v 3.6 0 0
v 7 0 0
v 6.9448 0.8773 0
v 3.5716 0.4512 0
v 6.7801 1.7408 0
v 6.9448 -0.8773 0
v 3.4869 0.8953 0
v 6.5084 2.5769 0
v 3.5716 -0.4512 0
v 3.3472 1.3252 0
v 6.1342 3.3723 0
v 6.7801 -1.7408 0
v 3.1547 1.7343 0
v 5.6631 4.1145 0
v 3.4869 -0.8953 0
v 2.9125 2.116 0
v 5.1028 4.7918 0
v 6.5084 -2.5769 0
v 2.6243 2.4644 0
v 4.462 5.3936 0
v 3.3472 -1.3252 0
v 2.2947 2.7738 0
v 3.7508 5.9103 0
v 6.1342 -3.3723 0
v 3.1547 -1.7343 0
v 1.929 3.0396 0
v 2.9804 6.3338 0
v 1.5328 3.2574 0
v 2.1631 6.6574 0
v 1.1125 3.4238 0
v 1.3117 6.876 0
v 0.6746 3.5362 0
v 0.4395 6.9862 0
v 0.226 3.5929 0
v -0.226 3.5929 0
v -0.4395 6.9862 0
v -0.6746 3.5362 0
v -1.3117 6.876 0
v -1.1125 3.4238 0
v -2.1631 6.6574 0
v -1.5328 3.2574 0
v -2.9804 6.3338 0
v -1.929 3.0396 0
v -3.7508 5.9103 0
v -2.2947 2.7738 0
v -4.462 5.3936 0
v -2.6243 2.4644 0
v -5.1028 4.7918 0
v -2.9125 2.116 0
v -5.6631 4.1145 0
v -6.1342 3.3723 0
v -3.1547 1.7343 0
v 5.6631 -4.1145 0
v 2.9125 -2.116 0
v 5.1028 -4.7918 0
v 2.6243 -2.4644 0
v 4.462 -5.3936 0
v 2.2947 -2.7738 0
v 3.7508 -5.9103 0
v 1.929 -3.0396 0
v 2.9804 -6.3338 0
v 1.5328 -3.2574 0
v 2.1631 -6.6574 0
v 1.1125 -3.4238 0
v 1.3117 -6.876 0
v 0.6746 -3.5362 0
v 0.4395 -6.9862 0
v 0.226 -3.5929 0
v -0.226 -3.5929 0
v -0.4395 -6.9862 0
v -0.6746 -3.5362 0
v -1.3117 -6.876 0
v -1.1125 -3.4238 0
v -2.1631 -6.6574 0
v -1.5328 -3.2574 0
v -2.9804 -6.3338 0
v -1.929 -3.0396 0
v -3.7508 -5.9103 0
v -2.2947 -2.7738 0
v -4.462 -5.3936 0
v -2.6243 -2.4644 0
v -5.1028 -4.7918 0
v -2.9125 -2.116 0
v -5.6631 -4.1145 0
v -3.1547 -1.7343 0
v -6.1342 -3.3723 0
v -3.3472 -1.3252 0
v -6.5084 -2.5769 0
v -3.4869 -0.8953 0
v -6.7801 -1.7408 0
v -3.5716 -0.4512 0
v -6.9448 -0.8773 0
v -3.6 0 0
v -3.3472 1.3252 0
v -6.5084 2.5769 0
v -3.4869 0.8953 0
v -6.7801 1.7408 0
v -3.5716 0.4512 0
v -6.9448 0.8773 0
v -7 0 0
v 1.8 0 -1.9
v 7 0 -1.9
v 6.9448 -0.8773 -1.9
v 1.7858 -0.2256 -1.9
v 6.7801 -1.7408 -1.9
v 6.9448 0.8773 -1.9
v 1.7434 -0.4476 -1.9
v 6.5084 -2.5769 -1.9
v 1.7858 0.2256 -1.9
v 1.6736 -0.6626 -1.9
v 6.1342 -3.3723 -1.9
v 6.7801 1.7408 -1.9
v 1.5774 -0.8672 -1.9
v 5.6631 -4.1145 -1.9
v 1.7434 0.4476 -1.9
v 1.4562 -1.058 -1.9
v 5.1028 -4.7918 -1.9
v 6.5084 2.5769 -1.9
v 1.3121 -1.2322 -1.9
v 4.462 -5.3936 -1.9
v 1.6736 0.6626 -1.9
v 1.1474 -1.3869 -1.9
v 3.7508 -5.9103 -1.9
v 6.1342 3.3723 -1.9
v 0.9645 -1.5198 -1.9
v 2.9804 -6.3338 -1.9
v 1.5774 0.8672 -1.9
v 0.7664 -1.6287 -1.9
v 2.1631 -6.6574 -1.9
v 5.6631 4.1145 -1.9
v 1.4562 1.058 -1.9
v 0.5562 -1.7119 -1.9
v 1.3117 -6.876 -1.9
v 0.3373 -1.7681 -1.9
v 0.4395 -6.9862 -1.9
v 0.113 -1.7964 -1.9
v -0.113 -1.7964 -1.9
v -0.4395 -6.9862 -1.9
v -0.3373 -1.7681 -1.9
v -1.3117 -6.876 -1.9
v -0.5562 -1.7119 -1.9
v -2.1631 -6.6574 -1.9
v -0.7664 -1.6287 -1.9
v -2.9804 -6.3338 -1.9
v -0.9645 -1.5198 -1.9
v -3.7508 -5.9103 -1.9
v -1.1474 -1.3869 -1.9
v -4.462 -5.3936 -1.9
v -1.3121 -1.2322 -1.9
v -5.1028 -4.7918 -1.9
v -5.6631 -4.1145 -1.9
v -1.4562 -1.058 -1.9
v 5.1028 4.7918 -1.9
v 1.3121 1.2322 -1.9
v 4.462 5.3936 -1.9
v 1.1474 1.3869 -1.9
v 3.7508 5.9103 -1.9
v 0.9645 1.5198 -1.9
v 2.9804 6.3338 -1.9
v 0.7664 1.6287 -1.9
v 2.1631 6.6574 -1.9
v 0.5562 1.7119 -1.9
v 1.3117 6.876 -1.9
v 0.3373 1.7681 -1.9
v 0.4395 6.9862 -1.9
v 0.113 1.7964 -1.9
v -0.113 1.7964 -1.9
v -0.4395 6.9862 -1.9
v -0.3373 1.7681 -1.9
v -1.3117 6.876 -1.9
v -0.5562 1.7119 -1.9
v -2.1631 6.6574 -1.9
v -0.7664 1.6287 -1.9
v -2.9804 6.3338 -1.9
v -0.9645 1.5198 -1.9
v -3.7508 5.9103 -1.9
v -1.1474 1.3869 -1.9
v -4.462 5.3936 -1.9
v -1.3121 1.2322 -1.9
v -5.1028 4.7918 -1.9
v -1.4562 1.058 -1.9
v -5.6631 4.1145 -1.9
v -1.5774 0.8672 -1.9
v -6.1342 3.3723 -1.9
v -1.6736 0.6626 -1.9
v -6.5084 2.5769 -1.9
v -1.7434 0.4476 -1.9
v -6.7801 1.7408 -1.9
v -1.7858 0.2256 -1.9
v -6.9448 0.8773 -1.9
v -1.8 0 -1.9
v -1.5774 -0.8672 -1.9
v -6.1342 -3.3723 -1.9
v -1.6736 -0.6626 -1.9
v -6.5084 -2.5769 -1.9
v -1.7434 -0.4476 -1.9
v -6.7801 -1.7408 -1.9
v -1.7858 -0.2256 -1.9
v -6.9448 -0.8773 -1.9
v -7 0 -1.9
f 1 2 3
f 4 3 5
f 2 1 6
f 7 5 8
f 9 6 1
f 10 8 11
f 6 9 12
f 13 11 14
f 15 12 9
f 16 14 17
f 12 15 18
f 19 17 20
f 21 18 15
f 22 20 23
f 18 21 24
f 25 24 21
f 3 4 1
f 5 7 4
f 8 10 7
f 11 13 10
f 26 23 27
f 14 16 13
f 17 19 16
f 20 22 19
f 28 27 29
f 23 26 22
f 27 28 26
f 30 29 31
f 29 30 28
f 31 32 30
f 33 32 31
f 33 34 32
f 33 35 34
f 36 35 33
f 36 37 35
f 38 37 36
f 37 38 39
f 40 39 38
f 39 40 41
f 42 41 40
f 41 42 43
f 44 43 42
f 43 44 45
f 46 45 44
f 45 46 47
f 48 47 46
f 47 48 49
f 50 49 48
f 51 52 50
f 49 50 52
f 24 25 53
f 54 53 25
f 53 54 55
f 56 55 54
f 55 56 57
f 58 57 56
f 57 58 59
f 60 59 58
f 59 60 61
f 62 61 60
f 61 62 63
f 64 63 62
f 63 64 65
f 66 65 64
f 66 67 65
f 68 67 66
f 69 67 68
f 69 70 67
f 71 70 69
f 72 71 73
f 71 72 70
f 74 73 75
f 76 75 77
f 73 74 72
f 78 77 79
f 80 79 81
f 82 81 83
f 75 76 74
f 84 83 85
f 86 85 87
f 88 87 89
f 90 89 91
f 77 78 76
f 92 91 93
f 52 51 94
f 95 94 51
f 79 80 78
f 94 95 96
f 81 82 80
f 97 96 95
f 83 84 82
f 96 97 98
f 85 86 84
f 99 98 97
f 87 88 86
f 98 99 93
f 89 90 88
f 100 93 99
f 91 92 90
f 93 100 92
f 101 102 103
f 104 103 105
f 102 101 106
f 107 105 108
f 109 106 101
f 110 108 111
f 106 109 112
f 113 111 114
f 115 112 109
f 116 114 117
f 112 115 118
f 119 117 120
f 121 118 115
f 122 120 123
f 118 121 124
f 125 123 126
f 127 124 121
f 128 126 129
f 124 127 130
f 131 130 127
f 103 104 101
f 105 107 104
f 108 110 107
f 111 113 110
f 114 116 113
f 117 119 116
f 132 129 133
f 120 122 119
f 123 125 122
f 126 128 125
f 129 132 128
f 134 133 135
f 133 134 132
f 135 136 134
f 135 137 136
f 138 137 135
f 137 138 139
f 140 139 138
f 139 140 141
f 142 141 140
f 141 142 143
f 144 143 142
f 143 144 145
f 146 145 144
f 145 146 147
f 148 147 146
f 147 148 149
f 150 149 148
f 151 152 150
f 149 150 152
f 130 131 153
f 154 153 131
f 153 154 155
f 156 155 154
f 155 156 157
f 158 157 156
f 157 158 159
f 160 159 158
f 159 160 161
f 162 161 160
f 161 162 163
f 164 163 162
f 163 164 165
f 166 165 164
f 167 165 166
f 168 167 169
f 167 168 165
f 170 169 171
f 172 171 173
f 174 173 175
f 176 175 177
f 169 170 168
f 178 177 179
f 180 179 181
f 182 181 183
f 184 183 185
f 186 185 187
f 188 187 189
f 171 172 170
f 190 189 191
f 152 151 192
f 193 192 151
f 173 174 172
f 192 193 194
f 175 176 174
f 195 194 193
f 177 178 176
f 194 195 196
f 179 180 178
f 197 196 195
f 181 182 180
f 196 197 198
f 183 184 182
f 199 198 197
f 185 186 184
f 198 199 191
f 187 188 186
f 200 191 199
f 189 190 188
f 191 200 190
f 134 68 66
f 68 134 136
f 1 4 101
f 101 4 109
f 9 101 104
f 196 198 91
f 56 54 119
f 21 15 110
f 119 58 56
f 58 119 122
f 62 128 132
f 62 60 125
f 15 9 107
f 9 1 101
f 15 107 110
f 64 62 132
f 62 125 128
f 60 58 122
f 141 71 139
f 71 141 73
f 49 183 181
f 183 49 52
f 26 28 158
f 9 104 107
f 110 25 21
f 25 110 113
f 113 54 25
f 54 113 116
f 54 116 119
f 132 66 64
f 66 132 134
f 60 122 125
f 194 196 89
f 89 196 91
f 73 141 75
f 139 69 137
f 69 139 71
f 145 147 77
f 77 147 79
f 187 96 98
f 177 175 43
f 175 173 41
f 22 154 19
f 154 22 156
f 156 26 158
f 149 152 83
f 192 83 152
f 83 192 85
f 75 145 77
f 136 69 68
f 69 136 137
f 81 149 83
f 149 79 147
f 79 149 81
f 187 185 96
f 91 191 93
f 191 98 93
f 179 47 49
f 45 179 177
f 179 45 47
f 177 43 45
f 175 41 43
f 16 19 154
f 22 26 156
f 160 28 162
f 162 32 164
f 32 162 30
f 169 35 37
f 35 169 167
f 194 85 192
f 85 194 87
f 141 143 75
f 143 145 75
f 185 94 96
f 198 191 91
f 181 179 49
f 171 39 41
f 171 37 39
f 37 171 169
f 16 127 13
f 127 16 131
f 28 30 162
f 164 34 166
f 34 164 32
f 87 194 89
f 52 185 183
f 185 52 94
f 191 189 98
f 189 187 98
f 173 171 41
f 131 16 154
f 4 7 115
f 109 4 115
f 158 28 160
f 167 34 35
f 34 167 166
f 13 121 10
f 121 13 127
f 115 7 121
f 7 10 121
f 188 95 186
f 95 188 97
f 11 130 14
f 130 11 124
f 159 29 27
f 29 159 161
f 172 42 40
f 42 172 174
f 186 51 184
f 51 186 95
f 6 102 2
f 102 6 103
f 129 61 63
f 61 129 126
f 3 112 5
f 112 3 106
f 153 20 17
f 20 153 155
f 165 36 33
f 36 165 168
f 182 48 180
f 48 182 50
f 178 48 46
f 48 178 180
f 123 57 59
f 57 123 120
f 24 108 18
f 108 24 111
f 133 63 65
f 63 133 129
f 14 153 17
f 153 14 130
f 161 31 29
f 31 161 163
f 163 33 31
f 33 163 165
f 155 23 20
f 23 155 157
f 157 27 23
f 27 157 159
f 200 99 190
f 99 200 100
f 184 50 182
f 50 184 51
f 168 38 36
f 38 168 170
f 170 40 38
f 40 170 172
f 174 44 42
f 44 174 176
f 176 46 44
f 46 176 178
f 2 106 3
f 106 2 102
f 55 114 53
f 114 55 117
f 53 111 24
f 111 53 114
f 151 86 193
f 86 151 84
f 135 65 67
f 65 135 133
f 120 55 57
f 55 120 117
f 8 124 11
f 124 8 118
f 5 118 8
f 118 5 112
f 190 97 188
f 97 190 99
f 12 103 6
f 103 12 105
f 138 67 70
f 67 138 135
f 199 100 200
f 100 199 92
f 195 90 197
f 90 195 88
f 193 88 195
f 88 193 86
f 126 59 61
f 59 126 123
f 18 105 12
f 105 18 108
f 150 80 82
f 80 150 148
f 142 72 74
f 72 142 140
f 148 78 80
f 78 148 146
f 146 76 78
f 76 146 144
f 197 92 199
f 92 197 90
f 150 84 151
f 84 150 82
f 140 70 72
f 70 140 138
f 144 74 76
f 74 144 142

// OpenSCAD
$fn = 50;


difference() {
	union() {
		translate(v = [0, 0, -1.9000000000]) {
			cylinder(h = 1.9000000000, r = 7.0000000000);
		}
	}
	union() {
		translate(v = [0, 0, 0]) {
			rotate(a = [0, 0, 0]) {
				difference() {
					union() {
						translate(v = [0, 0, -1.9000000000]) {
							cylinder(h = 1.9000000000, r = 1.5000000000);
						}
						translate(v = [0, 0, -1.9000000000]) {
							cylinder(h = 1.9000000000, r1 = 1.8000000000, r2 = 3.6000000000);
						}
						translate(v = [0, 0, -1.9000000000]) {
							cylinder(h = 1.9000000000, r = 1.8000000000);
						}
						translate(v = [0, 0, -1.9000000000]) {
							cylinder(h = 1.9000000000, r = 1.5000000000);
						}
					}
					union();
				}
			}
		}
	}
}
